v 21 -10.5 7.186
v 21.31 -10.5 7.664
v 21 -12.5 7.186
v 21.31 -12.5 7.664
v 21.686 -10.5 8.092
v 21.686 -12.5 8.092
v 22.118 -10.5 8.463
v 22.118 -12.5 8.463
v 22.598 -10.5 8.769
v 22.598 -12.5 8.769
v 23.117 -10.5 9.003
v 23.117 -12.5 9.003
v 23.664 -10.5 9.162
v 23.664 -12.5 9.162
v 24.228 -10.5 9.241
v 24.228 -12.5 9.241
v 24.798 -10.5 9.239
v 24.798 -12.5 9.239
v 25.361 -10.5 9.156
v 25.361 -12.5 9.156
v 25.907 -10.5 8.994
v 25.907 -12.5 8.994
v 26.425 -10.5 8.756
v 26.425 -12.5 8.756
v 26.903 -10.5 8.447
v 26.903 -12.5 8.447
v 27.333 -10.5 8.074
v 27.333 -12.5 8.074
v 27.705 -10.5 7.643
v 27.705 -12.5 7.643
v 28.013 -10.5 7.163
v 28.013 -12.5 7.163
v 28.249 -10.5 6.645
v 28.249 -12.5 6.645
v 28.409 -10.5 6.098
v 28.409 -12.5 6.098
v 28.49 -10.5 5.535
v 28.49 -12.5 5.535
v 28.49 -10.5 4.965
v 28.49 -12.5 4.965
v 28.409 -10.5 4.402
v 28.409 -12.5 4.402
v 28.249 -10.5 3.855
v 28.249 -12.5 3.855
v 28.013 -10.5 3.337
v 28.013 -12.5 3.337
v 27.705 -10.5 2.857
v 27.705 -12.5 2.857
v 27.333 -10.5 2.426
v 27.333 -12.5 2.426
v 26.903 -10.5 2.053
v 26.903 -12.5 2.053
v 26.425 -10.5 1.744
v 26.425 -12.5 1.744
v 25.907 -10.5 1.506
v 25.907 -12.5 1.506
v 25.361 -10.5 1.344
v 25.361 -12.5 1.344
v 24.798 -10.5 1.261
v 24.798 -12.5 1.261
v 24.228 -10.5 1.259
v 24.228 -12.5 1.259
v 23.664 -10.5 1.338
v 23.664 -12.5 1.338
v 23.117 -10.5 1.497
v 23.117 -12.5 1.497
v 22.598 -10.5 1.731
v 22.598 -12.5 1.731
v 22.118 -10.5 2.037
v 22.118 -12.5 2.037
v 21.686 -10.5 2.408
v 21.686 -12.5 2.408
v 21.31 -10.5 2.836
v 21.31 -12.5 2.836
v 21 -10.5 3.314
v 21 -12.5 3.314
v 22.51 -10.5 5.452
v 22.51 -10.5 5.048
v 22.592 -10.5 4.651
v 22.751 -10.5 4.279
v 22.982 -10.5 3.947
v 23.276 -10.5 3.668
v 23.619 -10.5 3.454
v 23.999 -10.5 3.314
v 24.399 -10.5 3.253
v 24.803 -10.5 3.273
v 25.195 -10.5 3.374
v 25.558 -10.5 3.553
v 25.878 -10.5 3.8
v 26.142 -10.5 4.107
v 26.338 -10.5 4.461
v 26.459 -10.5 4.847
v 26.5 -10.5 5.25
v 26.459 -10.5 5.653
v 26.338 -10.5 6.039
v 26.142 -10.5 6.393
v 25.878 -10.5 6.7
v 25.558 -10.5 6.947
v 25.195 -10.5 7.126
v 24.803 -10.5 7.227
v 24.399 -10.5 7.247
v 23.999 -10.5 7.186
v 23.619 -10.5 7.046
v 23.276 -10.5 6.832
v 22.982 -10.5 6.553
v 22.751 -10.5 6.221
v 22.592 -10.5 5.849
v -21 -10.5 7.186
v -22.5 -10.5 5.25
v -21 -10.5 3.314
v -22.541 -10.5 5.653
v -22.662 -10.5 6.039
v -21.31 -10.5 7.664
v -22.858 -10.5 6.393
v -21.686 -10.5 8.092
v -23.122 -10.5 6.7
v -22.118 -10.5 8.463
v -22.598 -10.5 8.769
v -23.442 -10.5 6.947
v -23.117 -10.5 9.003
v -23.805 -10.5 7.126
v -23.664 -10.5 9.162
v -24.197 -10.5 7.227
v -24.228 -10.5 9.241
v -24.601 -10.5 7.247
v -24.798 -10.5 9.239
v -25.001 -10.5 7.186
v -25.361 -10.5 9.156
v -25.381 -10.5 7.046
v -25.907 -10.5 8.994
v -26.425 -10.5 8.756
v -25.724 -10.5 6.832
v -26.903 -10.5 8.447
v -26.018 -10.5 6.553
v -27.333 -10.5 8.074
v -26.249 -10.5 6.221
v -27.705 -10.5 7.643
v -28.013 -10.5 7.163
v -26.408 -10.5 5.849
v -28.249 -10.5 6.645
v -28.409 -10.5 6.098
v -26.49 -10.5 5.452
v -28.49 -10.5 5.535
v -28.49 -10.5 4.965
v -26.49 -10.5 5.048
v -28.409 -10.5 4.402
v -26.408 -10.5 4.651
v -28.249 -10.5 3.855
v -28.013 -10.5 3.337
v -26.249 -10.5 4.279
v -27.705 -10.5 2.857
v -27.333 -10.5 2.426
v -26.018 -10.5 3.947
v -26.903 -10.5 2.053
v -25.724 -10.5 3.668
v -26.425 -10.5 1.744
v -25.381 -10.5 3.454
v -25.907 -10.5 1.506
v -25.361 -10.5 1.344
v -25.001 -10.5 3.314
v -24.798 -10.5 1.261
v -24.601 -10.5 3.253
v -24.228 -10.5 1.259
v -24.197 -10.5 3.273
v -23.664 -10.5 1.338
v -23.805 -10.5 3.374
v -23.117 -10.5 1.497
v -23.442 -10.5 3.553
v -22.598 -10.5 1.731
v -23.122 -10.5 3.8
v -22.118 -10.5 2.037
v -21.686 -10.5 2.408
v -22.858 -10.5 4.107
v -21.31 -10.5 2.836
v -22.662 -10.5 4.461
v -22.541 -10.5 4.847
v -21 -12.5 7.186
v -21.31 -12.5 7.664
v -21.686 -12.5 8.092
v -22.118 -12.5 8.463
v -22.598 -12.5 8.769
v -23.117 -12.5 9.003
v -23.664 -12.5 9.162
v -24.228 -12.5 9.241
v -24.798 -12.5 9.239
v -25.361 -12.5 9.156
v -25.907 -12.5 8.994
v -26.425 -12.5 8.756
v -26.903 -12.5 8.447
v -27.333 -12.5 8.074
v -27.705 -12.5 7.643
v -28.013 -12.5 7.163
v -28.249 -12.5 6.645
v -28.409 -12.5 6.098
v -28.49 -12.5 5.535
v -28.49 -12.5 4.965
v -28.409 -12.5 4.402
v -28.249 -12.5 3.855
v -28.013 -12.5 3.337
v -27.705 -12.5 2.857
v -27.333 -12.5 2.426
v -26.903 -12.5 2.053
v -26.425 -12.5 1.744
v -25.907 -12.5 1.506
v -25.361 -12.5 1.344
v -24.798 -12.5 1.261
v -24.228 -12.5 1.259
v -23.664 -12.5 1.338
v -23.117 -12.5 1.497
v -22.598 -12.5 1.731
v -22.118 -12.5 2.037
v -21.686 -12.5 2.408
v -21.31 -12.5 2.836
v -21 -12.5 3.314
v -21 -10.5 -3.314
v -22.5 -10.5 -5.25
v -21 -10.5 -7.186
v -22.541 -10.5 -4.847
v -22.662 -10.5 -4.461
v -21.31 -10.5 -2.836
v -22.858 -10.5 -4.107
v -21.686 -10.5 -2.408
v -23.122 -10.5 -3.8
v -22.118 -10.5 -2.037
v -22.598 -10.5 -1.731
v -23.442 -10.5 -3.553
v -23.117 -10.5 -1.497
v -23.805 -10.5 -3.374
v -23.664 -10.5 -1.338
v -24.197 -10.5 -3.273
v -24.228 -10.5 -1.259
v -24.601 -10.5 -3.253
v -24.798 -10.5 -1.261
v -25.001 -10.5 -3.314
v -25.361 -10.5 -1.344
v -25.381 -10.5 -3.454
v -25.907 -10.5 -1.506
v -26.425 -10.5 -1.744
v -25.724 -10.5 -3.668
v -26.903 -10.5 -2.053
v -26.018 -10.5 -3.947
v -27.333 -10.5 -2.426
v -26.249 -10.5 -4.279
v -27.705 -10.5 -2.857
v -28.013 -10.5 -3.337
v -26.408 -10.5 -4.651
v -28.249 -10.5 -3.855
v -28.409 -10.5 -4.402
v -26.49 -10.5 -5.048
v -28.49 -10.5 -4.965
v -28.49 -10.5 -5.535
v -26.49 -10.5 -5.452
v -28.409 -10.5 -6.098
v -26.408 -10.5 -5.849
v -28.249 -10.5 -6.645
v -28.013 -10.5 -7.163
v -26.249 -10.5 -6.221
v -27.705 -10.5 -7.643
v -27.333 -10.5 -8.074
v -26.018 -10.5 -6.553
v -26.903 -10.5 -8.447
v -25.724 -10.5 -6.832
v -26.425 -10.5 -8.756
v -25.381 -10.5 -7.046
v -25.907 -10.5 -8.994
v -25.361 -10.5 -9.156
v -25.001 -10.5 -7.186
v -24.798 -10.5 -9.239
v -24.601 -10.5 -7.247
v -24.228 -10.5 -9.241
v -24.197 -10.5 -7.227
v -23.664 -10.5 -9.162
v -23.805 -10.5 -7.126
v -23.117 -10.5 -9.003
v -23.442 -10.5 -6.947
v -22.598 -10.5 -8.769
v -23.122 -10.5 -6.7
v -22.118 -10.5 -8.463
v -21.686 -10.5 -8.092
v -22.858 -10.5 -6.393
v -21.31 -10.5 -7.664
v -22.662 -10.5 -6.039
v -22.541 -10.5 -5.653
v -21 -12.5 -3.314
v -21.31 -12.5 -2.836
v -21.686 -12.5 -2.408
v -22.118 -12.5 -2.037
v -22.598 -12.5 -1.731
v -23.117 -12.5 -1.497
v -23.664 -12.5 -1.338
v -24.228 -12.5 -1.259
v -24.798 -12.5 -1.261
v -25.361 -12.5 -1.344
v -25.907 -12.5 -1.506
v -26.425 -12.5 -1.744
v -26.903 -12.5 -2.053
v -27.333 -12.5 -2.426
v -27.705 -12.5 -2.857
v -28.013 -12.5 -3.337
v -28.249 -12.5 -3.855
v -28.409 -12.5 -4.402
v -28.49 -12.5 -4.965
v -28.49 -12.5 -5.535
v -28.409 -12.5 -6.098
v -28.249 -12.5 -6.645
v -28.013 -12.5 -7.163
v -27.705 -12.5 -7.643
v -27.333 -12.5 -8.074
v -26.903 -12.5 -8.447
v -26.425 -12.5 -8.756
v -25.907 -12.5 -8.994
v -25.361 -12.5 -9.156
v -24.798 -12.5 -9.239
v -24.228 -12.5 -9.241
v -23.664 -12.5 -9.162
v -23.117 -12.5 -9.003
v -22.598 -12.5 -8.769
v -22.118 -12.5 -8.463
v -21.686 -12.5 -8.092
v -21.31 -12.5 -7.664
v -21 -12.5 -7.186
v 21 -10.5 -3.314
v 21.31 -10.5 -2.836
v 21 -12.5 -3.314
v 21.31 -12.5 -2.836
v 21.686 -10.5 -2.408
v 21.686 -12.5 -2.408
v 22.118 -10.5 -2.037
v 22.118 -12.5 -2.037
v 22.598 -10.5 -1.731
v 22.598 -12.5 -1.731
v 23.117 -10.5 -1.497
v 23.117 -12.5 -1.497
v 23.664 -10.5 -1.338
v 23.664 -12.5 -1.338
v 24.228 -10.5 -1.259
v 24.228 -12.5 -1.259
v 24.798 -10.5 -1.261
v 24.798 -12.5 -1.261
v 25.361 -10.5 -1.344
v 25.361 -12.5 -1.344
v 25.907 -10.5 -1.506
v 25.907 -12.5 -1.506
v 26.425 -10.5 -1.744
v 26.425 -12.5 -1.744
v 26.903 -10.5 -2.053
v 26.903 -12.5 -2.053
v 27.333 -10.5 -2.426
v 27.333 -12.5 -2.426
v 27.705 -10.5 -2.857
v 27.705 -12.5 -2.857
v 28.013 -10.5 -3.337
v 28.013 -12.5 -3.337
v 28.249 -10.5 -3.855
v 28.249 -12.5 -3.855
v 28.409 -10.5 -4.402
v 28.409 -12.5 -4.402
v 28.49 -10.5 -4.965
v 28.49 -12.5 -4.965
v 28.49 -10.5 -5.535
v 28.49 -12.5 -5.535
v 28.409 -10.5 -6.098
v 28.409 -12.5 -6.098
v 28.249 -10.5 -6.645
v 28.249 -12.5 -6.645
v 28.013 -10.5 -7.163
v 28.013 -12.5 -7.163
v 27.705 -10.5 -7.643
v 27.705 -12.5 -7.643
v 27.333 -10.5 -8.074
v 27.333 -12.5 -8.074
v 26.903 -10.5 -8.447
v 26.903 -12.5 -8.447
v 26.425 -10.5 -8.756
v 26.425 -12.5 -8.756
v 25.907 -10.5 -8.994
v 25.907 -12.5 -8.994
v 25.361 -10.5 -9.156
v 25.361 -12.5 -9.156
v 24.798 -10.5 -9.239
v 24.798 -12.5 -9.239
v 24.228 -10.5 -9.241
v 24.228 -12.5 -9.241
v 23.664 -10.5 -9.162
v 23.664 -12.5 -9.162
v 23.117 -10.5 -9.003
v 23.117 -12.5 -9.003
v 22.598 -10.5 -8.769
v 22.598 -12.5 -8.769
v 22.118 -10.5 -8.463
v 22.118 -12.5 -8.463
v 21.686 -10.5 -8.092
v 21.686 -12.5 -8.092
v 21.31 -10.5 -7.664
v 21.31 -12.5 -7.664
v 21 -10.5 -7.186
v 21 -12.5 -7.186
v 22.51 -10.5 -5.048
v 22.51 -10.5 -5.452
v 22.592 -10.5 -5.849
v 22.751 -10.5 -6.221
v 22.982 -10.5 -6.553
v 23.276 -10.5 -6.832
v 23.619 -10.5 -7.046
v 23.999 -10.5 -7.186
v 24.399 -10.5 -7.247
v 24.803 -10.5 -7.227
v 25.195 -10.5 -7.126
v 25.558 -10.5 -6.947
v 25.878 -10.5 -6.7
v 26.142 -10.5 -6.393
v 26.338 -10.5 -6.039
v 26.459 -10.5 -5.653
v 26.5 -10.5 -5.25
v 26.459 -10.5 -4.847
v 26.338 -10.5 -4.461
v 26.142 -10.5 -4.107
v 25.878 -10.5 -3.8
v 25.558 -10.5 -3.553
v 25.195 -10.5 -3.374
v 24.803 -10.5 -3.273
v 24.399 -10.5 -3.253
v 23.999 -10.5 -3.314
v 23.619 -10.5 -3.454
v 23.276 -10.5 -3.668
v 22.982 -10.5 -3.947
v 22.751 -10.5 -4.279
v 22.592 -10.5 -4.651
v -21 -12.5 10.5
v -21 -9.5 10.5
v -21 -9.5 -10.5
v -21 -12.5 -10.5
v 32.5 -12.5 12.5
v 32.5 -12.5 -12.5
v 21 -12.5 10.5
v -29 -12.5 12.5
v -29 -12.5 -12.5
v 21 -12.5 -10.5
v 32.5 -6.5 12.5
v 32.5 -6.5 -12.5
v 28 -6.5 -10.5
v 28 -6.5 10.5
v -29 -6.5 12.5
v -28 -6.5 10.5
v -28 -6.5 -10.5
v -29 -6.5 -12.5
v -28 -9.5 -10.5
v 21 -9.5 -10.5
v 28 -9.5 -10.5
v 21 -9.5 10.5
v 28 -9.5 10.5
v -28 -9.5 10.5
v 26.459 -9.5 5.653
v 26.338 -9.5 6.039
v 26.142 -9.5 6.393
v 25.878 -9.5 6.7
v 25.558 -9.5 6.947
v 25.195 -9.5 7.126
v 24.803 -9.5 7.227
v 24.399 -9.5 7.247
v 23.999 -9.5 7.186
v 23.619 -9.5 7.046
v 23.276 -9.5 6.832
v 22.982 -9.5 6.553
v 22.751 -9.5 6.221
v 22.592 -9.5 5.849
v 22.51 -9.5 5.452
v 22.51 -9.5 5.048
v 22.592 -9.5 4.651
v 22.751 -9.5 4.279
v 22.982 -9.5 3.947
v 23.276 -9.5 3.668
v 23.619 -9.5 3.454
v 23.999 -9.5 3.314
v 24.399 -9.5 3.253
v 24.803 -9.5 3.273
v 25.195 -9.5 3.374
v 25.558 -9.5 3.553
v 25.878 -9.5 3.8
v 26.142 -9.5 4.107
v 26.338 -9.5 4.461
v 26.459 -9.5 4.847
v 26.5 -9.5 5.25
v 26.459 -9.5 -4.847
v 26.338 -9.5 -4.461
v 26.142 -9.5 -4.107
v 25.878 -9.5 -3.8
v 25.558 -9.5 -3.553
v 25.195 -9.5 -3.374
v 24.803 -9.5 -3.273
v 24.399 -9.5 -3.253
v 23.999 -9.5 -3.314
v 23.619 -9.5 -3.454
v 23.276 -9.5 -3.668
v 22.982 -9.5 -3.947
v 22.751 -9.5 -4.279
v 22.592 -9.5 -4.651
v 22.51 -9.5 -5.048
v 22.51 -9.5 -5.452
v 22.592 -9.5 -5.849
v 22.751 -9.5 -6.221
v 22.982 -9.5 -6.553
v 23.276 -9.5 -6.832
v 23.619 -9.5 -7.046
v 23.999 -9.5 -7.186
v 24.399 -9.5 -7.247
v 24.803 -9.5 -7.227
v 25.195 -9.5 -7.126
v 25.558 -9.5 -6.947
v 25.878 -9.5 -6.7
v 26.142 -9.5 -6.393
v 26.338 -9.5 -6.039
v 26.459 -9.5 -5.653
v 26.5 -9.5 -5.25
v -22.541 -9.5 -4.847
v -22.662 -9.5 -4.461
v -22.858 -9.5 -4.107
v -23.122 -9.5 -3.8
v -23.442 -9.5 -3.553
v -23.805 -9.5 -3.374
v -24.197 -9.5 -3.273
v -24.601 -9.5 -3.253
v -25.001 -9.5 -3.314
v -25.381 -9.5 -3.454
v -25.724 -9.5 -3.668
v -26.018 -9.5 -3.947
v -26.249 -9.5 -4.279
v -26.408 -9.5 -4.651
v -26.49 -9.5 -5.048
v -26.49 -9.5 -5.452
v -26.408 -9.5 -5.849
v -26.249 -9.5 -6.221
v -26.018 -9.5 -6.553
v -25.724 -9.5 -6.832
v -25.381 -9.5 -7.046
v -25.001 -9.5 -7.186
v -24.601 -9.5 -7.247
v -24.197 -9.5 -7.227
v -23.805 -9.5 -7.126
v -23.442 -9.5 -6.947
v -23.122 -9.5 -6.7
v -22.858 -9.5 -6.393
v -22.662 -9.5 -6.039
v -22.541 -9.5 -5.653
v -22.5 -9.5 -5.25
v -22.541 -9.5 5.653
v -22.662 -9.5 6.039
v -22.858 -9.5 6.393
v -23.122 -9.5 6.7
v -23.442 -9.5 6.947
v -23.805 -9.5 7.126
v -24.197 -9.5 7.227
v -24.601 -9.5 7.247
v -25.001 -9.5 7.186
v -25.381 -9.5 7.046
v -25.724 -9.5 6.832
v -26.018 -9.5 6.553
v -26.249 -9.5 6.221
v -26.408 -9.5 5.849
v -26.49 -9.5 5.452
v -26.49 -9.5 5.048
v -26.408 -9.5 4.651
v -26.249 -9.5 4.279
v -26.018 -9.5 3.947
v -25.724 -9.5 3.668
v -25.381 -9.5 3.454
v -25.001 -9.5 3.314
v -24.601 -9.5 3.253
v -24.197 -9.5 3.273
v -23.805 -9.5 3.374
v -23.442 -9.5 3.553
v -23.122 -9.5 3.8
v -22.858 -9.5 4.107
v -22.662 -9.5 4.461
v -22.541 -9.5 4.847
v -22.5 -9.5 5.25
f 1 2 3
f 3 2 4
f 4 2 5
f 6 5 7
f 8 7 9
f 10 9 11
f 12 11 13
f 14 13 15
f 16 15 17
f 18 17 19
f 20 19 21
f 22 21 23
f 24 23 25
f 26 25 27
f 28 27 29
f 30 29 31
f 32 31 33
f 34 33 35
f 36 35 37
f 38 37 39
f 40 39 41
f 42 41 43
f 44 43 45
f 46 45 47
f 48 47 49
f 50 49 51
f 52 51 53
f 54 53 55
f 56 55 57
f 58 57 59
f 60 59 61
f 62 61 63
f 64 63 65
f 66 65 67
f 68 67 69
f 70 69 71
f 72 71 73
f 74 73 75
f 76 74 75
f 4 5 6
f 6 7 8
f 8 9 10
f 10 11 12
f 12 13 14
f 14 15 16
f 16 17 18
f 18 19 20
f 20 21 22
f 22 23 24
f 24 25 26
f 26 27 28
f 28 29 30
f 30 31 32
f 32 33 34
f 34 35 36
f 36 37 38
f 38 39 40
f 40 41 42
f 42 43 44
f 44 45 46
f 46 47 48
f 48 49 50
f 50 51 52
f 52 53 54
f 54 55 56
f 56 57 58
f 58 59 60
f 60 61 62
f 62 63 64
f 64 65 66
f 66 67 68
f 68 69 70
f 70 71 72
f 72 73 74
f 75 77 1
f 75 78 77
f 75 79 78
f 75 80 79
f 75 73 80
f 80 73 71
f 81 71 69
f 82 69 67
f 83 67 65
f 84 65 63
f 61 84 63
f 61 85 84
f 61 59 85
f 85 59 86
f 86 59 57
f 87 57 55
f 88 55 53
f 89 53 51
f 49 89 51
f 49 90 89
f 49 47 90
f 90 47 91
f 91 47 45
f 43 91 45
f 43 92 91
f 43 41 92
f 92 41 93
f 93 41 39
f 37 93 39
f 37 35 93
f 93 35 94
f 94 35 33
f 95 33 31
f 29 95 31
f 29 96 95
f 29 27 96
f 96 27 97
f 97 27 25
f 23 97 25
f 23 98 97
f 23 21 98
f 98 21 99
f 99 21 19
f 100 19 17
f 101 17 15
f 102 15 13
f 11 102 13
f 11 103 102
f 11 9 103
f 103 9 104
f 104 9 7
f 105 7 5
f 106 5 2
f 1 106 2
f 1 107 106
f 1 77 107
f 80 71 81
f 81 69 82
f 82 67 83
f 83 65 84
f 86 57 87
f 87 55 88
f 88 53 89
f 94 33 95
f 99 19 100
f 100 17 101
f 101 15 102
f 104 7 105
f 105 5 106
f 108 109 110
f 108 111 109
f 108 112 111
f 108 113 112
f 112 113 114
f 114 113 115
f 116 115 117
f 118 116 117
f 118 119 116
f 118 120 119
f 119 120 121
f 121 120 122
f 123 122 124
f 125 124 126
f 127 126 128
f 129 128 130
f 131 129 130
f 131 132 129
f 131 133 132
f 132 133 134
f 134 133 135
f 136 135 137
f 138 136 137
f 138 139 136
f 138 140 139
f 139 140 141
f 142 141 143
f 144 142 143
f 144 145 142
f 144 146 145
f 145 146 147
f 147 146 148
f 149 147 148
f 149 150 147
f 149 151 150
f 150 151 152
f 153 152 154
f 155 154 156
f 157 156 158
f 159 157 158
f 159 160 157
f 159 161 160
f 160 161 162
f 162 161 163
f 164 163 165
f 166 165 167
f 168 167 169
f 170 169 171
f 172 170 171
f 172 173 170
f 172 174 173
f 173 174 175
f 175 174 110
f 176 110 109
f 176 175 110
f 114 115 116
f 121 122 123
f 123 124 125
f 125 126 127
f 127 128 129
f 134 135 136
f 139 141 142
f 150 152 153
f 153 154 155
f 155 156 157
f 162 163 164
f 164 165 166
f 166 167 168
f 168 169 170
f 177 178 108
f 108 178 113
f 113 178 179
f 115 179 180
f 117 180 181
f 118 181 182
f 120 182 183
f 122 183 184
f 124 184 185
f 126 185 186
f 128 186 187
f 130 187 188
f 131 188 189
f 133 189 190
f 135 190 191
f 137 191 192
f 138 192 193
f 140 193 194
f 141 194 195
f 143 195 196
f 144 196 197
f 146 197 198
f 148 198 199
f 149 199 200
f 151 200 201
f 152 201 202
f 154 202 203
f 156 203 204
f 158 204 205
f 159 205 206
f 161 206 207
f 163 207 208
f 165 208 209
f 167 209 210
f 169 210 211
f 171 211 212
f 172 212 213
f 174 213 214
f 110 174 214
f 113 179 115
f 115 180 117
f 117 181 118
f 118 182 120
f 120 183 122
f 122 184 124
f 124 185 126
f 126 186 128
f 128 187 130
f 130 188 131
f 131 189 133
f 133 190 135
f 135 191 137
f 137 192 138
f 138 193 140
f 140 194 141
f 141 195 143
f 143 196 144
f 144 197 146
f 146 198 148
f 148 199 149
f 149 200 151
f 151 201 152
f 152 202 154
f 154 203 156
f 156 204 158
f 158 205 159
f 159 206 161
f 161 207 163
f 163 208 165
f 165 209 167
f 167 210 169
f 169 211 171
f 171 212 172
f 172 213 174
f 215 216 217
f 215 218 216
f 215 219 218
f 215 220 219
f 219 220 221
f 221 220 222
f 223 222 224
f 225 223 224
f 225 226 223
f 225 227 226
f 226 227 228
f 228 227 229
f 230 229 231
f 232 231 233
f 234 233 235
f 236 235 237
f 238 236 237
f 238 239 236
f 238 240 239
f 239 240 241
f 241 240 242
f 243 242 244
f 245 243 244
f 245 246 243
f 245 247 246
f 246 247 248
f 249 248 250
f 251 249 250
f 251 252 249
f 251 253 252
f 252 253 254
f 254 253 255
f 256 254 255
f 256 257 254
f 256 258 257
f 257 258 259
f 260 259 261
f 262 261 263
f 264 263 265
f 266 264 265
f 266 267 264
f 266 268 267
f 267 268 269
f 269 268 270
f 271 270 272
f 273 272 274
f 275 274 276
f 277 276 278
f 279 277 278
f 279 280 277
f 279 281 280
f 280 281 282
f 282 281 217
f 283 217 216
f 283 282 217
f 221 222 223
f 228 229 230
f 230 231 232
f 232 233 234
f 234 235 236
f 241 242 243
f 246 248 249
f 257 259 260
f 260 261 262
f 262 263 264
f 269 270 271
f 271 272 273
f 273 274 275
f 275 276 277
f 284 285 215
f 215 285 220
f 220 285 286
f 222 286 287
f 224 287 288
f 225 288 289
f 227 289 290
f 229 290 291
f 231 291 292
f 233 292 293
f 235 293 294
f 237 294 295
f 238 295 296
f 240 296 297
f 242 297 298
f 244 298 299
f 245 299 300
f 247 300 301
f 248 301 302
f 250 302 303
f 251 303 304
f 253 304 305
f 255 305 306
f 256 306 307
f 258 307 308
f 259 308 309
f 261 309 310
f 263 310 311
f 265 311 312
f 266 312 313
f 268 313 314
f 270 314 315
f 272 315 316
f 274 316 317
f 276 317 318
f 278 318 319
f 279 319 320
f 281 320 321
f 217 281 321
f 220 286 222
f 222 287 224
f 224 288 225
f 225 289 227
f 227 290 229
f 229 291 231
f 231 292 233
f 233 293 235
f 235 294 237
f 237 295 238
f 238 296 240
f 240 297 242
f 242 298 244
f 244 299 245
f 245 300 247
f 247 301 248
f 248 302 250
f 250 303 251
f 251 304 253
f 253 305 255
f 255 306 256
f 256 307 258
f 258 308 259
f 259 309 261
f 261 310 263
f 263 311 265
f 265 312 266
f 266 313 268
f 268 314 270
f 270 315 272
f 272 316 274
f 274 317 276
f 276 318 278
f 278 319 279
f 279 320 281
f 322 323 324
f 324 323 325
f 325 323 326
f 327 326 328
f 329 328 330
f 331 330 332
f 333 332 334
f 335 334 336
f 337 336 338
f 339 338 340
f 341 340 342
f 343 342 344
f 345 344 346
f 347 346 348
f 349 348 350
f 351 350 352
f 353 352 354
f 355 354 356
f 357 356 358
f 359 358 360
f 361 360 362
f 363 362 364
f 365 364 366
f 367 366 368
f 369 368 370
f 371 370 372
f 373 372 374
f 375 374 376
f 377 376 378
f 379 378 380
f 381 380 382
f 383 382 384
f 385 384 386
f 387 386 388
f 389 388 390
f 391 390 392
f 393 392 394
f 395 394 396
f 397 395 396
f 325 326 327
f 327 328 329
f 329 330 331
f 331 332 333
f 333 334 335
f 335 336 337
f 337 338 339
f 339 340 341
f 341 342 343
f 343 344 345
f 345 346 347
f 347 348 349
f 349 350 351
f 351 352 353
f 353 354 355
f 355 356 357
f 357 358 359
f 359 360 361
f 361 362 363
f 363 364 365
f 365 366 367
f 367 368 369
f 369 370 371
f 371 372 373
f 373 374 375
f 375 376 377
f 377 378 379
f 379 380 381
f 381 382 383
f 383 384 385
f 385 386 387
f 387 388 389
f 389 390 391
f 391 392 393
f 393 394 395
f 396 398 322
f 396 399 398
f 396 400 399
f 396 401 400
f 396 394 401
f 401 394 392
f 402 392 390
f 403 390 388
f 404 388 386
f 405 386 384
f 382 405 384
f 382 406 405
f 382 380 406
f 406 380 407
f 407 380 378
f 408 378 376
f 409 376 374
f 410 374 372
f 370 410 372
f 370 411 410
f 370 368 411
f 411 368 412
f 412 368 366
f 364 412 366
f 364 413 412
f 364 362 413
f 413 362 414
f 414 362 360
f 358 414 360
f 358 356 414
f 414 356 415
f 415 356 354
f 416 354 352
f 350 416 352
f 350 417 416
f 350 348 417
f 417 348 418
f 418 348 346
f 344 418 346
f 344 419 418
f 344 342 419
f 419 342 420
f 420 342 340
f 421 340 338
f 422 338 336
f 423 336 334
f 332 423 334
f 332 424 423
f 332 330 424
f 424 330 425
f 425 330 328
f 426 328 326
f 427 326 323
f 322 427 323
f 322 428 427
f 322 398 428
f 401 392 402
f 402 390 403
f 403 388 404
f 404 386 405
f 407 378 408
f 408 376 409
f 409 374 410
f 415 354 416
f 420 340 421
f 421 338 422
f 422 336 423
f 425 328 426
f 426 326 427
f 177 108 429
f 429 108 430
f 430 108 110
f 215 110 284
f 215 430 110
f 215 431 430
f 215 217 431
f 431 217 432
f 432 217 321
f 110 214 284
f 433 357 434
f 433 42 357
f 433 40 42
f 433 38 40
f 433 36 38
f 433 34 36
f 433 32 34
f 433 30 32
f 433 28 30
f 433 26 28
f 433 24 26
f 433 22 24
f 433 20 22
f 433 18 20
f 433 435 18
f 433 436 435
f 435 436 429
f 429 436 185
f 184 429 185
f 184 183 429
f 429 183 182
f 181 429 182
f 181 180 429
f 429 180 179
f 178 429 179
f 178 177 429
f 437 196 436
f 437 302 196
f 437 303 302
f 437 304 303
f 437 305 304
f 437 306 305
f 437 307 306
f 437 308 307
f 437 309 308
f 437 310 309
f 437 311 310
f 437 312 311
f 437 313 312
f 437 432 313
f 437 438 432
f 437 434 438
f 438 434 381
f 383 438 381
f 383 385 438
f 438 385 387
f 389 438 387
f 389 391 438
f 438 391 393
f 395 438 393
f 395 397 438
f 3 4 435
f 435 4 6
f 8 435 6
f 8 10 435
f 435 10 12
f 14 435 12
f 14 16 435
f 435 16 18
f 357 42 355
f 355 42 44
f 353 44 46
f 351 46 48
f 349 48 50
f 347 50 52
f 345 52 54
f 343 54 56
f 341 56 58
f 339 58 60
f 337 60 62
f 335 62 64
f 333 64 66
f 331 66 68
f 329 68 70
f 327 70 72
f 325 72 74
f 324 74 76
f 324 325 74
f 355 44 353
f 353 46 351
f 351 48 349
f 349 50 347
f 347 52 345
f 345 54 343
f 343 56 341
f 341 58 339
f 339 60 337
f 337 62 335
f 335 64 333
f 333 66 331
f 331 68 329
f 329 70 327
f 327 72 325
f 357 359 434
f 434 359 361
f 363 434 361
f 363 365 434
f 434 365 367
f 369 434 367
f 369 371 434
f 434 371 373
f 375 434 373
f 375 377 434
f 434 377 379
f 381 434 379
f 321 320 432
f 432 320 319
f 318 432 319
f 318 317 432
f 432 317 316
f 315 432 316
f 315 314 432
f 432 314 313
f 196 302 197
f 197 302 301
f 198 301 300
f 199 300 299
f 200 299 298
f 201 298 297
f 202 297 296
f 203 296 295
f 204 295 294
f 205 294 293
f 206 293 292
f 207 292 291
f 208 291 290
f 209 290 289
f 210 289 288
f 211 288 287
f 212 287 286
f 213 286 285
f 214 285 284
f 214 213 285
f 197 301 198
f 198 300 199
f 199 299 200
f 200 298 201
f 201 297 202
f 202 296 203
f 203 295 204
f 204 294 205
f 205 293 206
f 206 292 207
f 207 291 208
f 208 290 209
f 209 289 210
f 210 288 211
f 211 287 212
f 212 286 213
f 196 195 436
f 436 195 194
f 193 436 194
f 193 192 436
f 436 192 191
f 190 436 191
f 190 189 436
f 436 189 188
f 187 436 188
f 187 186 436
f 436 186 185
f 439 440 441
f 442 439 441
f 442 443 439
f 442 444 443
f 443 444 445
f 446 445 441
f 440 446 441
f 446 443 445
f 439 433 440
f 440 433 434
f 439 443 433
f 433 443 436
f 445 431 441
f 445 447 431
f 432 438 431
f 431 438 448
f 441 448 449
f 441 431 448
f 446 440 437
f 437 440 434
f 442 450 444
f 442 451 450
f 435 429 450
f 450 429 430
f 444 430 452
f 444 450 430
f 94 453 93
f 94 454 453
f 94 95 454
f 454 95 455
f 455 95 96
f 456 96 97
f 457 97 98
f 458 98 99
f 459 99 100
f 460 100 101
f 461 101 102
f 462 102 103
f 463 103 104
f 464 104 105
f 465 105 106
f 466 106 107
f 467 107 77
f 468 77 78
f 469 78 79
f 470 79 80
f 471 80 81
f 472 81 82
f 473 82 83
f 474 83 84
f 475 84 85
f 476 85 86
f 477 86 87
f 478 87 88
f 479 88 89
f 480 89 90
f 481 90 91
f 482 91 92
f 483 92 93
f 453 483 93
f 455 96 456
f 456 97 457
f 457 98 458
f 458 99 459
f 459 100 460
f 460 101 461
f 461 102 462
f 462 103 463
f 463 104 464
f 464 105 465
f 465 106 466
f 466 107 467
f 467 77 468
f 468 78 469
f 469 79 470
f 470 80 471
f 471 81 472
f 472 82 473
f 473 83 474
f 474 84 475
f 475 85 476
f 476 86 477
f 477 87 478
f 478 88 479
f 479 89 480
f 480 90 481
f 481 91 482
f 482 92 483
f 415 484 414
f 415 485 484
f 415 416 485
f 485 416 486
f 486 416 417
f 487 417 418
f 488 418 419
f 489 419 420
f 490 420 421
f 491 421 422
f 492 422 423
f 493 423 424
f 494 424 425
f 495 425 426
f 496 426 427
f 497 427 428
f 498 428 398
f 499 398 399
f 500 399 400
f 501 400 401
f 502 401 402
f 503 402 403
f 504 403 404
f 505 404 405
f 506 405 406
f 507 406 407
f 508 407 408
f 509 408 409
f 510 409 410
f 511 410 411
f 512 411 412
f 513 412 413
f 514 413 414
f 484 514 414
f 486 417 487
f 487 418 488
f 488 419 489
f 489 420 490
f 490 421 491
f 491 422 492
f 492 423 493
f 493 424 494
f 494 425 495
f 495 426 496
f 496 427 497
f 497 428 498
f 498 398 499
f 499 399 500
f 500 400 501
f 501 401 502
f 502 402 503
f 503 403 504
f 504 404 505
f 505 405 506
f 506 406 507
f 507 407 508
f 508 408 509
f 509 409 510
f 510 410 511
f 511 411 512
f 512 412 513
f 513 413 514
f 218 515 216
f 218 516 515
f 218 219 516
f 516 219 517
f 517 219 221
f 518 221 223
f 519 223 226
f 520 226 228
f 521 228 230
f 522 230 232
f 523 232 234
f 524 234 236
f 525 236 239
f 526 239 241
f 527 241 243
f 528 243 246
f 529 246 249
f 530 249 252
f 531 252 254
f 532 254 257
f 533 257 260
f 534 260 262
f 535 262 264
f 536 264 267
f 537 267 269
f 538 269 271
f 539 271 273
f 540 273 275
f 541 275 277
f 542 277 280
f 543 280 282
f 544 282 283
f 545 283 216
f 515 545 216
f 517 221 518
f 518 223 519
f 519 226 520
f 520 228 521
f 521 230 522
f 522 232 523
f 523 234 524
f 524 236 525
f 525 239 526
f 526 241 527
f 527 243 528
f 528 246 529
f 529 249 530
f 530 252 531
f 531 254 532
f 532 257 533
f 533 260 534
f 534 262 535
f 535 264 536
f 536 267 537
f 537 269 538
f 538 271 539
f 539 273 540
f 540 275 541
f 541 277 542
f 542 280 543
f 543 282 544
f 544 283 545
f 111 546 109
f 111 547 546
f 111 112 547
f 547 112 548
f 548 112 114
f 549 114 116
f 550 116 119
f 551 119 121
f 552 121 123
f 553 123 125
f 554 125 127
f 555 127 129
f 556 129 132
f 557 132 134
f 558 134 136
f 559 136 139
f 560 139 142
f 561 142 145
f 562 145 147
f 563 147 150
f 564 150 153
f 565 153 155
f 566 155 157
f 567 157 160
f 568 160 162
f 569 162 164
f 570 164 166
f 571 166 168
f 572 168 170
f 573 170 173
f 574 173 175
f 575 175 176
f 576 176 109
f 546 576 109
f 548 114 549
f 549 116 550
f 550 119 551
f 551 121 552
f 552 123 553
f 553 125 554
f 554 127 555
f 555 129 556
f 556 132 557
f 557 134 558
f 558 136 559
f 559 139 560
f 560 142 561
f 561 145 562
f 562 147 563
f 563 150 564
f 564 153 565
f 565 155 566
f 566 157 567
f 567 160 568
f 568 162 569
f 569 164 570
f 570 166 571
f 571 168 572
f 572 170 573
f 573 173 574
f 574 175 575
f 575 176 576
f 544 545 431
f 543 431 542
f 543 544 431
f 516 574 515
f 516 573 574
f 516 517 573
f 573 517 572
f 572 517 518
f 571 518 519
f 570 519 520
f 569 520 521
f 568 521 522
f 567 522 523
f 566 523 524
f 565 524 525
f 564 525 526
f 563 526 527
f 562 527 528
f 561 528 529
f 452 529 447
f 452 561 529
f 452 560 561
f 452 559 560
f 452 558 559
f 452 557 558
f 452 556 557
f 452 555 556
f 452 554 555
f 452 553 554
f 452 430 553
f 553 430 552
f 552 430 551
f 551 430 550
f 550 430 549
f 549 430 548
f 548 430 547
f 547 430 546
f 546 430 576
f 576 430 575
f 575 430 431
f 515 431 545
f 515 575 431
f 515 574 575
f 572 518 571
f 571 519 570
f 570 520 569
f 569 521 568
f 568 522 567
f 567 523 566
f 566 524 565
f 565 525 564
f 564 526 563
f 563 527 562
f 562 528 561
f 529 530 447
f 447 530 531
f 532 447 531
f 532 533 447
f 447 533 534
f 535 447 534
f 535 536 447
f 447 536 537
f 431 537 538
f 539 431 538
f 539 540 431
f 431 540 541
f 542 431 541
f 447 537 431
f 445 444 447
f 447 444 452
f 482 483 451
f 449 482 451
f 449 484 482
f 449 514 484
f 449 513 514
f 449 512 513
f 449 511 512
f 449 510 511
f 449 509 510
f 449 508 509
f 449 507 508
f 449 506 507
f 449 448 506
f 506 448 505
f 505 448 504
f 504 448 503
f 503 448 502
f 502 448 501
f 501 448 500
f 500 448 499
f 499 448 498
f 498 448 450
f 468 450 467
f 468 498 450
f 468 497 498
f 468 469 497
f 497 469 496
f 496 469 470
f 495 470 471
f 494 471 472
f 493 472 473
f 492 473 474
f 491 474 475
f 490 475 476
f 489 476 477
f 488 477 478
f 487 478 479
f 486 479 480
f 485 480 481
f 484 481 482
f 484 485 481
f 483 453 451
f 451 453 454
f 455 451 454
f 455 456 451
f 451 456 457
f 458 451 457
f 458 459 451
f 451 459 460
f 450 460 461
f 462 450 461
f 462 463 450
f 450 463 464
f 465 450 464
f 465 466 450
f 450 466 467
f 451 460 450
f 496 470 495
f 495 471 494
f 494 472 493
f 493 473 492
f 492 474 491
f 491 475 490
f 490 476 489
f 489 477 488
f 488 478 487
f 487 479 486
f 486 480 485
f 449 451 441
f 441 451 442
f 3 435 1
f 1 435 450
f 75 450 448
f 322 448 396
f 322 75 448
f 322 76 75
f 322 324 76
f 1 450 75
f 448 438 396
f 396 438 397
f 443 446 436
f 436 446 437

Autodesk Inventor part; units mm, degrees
ref_plane "YZ Plane" through (0, 0, 0) normal (1, 0, 0) x (0, 1, 0)
ref_plane "XZ Plane" through (0, 0, 0) normal (0, 1, 0) x (-1, 0, 0)
ref_plane "XY Plane" through (0, 0, 0) normal (0, 0, 1) x (1, 0, 0)
sketch "Esquisse1" plane through (0, 0, 0) normal (0, 1, 0) x (-1, 0, 0)
  line L0 (21, 10.5) -> (-21, 10.5)
  line L1 (-21, 10.5) -> (-21, -10.5)
  line L2 (-21, -10.5) -> (21, -10.5)
  line L3 (21, -10.5) -> (21, 10.5)
  line L4 (29, 12.5) -> (-37, 12.5)
  line L5 (-37, 12.5) -> (-37, -12.5)
  line L6 (-37, -12.5) -> (29, -12.5)
  line L7 (29, -12.5) -> (29, 12.5)
  line L8 (-37, -12.5) -> (-46.0993, 12.5)
  line L9 (-46.0993, 12.5) -> (-37, 12.5)
  point P0 (0, 0)
  dimension "d0" = 20
  dimension "d1" = 42
  dimension "d2" = 21
  dimension "d3" = 10.5
  dimension "d4" = 21
  dimension "d5" = 8
  dimension "d6" = 2
  dimension "d7" = 2
  dimension "d8" = 16
extrude "Extrusion1" add sketch "Esquisse1" along normal mid plane 25
sketch "Esquisse2" plane through (37, -12.5, -12.5) normal (0.9397, 0, -0.342) x (-0.342, 0, -0.9397)
  line L0 (-26.6044, 25) -> (0, 0)
  line L1 (0, 0) -> (0, 25)
  line L2 (0, 25) -> (-26.6044, 0)
  arc A0 (-8.3022, 22.298) -> (-18.3022, 22.298) centre (-13.3022, 12.5) ccw
  line L3 (-18.3022, 22.298) -> (-8.3022, 22.298)
  line L4 (-8.3022, 22.298) -> (-8.3022, 2.702)
  line L5 (-8.3022, 2.702) -> (-18.3022, 2.702)
  line L6 (-18.3022, 2.702) -> (-18.3022, 22.298)
  arc A1 (-8.3022, 2.702) -> (-8.3022, 22.298) centre (-13.3022, 12.5) ccw
  arc A2 (-18.3022, 2.702) -> (-8.3022, 2.702) centre (-13.3022, 12.5) ccw
  arc A3 (-18.3022, 22.298) -> (-18.3022, 2.702) centre (-13.3022, 12.5) ccw
  point P0 (0.9086, 12.5)
  point P1 (-26.6044, 25)
  point P2 (-26.6044, 0)
  dimension "d11" = 22
  dimension "d13" = 10
extrude "Extrusion2" add sketch "Esquisse2" along normal blind 5 contours A3 L6 L0 | L0 L6 L2 A3 | L6 L3 L4 L2 L0 | L0 L2 L6 | L2 L6 A3 | L2 L4 L0 | L0 L4 L5 L6 L2 | A1 L2 L4 | L4 L2 A1 L0 | L0 A1 L4
sketch "Esquisse3" plane through (39.8395, -9.798, -4.6985) normal (0, -1, 0) x (0.9397, 0, -0.342)
  line L0 (5, 10) -> (0, 0)
  line L1 (0, 10) -> (5, 0)
  circle A0 centre (2.5, 5) radius 1.75
  point P0 (-39.0439, -9.2108)
  dimension "d16" = 3.5
extrude "Extrusion3" cut sketch "Esquisse3" against normal through all
sketch "Esquisse4" plane through (21, -12.5, 10.5) normal (-1, 0, 0) x (0, 0, 1)
  line L0 (-21, 3) -> (0, 3)
  line L1 (0, 3) -> (0, 6)
  line L2 (0, 6) -> (-21, 6)
  line L3 (-21, 6) -> (-21, 3)
  line L4 (-21, 0) -> (-21, 25) projected
  line L5 (0, 0) -> (0, 25) projected
  line L6 (0, 0) -> (-21, 0) projected
  point P0 (-10.5, 12.5)
  dimension "d19" = 3
  dimension "d20" = 3
extrude "Extrusion4" cut sketch "Esquisse4" against normal blind 7 contours L3 L2 L1 L0
sketch "Esquisse5" plane through (-21, -12.5, -10.5) normal (1, 0, 0) x (0, 0, -1)
  line L0 (-21, 6) -> (0, 6)
  line L1 (0, 6) -> (0, 3)
  line L2 (0, 3) -> (-21, 3)
  line L3 (-21, 3) -> (-21, 6)
  line L4 (-21, 25) -> (-21, 0) projected
  line L5 (0, 0) -> (0, 25) projected
  line L6 (0, 0) -> (-21, 0) projected
  point P0 (-10.5, 12.5)
  dimension "d23" = 3
  dimension "d24" = 3
extrude "Extrusion5" cut sketch "Esquisse5" against normal blind 7 contours L0 L1 L2 L3
sketch "Esquisse6" plane through (21, 12.5, -10.5) normal (-1, 0, 0) x (0, 0, 1)
  line L0 (21, -25) -> (0, 0)
  line L1 (0, -25) -> (21, 0)
  circle A0 centre (10.5, -12.5) radius 3
  dimension "d27" = 6
extrude "Extrusion6" cut sketch "Esquisse6" against normal through all
sketch "Esquisse7" plane through (21, 12.5, -10.5) normal (-1, 0, 0) x (0, 0, 1)
  circle A0 centre (10.5, -12.5) radius 3
  circle A1 centre (10.5, -12.5) radius 1.75
  circle A2 centre (10.5, -12.5) radius 3 projected
  dimension "d30" = 0
  dimension "d31" = 3.5
extrude "Extrusion7" add sketch "Esquisse7" against normal blind 18
sketch "Esquisse8" plane through (21, 12.5, -10.5) normal (-1, 0, 0) x (0, 0, 1)
  circle A0 centre (10.5, -12.5) radius 3
  dimension "d34" = 6
extrude "Extrusion8" cut sketch "Esquisse8" against normal blind 3
sketch "Esquisse10" plane through (0, -12.5, 0) normal (0, -1, 0) x (1, 0, 0)
  line L0 (-21, -10.5) -> (-28, -10.5)
  line L1 (-28, -10.5) -> (-28, 10.5)
  line L2 (-28, 10.5) -> (-21, 10.5)
  line L3 (-21, 10.5) -> (-21, -10.5)
  line L4 (21, -10.5) -> (28, -10.5)
  line L5 (28, -10.5) -> (28, 10.5)
  line L6 (28, 10.5) -> (21, 10.5)
  line L7 (21, 10.5) -> (21, -10.5)
  line L8 (-28, -10.5) -> (-28, 10.5) projected
  line L9 (28, 10.5) -> (28, -10.5) projected
  line L10 (-28, -10.5) -> (-21, 0)
  line L11 (-21, 0) -> (-28, 10.5)
  line L12 (-28, 0) -> (-21, 10.5)
  line L13 (-21, -10.5) -> (-28, 0)
  line L14 (21, -10.5) -> (28, 0)
  line L15 (21, 0) -> (28, -10.5)
  line L16 (28, 10.5) -> (21, 0)
  line L17 (21, 10.5) -> (28, 0)
  circle A0 centre (-24.5, -5.25) radius 2
  circle A1 centre (24.5, -5.25) radius 2
  circle A2 centre (24.5, 5.25) radius 2
  circle A3 centre (-24.5, 5.25) radius 2
  point P0 (0, 0)
  dimension "d37" = 4
  dimension "d38" = 4
  dimension "d39" = 4
  dimension "d40" = 4
extrude "Extrusion9" cut sketch "Esquisse10" against normal through all contours A0 L10 L13 | L13 L10 A0 | A0 L13 L10 | L10 L13 A0 | A3 L12 L11 | L11 L12 A3 | A3 L11 L12 | L12 L11 A3 | A1 L15 L14 | L14 L15 A1 | L15 L14 A1 | A1 L14 L15 | A2 L17 L16 | L16 L17 A2 | L17 L16 A2 | A2 L16 L17
sketch "Esquisse11" plane through (37, 12.5, -12.5) normal (0, 0, -1) x (-1, 0, 0)
  line L0 (66, 0) -> (46, 0)
  line L1 (46, 0) -> (46, -13)
  line L2 (46, -13) -> (66, -13)
  line L3 (66, -13) -> (66, 0)
  line L4 (66, -25) -> (0, -25) projected
  line L5 (46, -13) -> (33, 0)
  line L6 (0, 0) -> (66, 0) projected
  line L7 (45, 0) -> (33, 0)
  point P0 (37, -12.5)
  dimension "d43" = 20
  dimension "d44" = 12
  dimension "d45" = 45
extrude "Extrusion10" cut sketch "Esquisse11" against normal through all
sketch "Esquisse12" plane through (-29, -12.5, 12.5) normal (0, 0, 1) x (1, 0, 0)
  line L0 (33, 25) -> (75.0993, 25) projected
  line L1 (75.0993, 0) -> (61.5, 0)
  line L2 (61.5, 0) -> (61.5, 25)
  line L3 (61.5, 25) -> (75.0993, 25)
  line L4 (75.0993, 25) -> (75.0993, 0)
  line L5 (57, 6) -> (57, 3) projected
  line L6 (66, 25) -> (66, 0) projected
  line L7 (61.5, 25) -> (0, 25)
  line L8 (0, 25) -> (0, 0)
  line L9 (0, 0) -> (61.5, 0)
  line L10 (61.5, 0) -> (61.5, 25)
  line L11 (75.0993, 0) -> (79.0103, 0)
  line L12 (79.0103, 0) -> (79.0103, 25)
  line L13 (79.0103, 25) -> (75.0993, 25)
  line L14 (75.0993, 25) -> (75.0993, 0)
  ellipse E0 centre (75.2481, 12.5) end of major axis (75.2481, 1.5) minor radius 3.7622 (76.9582, 2.702) -> (76.9582, 22.298) ccw projected
  point P0 (29, 12.5)
  dimension "d48" = 9
  dimension "d49" = 4.5
extrude "Extrusion12" cut sketch "Esquisse12" against normal through all contours L0 L6 L1 L2 | L0 L4 L1 L6 | L13 L12 L11 L4
sketch "Esquisse13" plane through (-29, -0.5, 12.5) normal (0, 0, 1) x (1, 0, 0)
  line L0 (0, -12) -> (0, 0) projected
  line L1 (61.5, -12) -> (0, -12)
  line L2 (0, -12) -> (0, -6)
  line L3 (0, -6) -> (61.5, -6)
  line L4 (61.5, -6) -> (61.5, -12)
  line L5 (61.5, 13) -> (0, 13)
  line L6 (0, 13) -> (0, -6)
  line L7 (0, -6) -> (61.5, -6)
  line L8 (61.5, -6) -> (61.5, 13)
  point P0 (29, 0.5)
  dimension "d54" = 6
extrude "Extrusion13" cut sketch "Esquisse13" against normal through all contours L0 L6 L5 L8 L3
sketch "Esquisse14" plane through (0, -12.5, 0) normal (0, -1, 0) x (1, 0, 0)
  circle A0 centre (-24.5, 5.25) radius 4
  circle A1 centre (-24.5, -5.25) radius 4
  circle A2 centre (24.5, 5.25) radius 4
  circle A3 centre (24.5, -5.25) radius 4
  circle A4 centre (-24.5, 5.25) radius 2 projected
  circle A5 centre (-24.5, -5.25) radius 2 projected
  circle A6 centre (24.5, 5.25) radius 2 projected
  circle A7 centre (24.5, -5.25) radius 2 projected
  point P0 (0, 0)
  dimension "d57" = 8
  dimension "d58" = 8
  dimension "d59" = 8
  dimension "d60" = 8
extrude "Extrusion14" cut sketch "Esquisse14" against normal blind 2
equation "\"d3\" = 0.5 * d2"
equation "\"d4\" = 0.5 * d1"
equation "\"d38\" = d37"
equation "\"d39\" = d37"
equation "\"d40\" = d37"
equation "\"d49\" = 0.5 * d48"
equation "\"d58\" = d57"
equation "\"d59\" = d57"
equation "\"d60\" = d57"
properties part number "forearm"
